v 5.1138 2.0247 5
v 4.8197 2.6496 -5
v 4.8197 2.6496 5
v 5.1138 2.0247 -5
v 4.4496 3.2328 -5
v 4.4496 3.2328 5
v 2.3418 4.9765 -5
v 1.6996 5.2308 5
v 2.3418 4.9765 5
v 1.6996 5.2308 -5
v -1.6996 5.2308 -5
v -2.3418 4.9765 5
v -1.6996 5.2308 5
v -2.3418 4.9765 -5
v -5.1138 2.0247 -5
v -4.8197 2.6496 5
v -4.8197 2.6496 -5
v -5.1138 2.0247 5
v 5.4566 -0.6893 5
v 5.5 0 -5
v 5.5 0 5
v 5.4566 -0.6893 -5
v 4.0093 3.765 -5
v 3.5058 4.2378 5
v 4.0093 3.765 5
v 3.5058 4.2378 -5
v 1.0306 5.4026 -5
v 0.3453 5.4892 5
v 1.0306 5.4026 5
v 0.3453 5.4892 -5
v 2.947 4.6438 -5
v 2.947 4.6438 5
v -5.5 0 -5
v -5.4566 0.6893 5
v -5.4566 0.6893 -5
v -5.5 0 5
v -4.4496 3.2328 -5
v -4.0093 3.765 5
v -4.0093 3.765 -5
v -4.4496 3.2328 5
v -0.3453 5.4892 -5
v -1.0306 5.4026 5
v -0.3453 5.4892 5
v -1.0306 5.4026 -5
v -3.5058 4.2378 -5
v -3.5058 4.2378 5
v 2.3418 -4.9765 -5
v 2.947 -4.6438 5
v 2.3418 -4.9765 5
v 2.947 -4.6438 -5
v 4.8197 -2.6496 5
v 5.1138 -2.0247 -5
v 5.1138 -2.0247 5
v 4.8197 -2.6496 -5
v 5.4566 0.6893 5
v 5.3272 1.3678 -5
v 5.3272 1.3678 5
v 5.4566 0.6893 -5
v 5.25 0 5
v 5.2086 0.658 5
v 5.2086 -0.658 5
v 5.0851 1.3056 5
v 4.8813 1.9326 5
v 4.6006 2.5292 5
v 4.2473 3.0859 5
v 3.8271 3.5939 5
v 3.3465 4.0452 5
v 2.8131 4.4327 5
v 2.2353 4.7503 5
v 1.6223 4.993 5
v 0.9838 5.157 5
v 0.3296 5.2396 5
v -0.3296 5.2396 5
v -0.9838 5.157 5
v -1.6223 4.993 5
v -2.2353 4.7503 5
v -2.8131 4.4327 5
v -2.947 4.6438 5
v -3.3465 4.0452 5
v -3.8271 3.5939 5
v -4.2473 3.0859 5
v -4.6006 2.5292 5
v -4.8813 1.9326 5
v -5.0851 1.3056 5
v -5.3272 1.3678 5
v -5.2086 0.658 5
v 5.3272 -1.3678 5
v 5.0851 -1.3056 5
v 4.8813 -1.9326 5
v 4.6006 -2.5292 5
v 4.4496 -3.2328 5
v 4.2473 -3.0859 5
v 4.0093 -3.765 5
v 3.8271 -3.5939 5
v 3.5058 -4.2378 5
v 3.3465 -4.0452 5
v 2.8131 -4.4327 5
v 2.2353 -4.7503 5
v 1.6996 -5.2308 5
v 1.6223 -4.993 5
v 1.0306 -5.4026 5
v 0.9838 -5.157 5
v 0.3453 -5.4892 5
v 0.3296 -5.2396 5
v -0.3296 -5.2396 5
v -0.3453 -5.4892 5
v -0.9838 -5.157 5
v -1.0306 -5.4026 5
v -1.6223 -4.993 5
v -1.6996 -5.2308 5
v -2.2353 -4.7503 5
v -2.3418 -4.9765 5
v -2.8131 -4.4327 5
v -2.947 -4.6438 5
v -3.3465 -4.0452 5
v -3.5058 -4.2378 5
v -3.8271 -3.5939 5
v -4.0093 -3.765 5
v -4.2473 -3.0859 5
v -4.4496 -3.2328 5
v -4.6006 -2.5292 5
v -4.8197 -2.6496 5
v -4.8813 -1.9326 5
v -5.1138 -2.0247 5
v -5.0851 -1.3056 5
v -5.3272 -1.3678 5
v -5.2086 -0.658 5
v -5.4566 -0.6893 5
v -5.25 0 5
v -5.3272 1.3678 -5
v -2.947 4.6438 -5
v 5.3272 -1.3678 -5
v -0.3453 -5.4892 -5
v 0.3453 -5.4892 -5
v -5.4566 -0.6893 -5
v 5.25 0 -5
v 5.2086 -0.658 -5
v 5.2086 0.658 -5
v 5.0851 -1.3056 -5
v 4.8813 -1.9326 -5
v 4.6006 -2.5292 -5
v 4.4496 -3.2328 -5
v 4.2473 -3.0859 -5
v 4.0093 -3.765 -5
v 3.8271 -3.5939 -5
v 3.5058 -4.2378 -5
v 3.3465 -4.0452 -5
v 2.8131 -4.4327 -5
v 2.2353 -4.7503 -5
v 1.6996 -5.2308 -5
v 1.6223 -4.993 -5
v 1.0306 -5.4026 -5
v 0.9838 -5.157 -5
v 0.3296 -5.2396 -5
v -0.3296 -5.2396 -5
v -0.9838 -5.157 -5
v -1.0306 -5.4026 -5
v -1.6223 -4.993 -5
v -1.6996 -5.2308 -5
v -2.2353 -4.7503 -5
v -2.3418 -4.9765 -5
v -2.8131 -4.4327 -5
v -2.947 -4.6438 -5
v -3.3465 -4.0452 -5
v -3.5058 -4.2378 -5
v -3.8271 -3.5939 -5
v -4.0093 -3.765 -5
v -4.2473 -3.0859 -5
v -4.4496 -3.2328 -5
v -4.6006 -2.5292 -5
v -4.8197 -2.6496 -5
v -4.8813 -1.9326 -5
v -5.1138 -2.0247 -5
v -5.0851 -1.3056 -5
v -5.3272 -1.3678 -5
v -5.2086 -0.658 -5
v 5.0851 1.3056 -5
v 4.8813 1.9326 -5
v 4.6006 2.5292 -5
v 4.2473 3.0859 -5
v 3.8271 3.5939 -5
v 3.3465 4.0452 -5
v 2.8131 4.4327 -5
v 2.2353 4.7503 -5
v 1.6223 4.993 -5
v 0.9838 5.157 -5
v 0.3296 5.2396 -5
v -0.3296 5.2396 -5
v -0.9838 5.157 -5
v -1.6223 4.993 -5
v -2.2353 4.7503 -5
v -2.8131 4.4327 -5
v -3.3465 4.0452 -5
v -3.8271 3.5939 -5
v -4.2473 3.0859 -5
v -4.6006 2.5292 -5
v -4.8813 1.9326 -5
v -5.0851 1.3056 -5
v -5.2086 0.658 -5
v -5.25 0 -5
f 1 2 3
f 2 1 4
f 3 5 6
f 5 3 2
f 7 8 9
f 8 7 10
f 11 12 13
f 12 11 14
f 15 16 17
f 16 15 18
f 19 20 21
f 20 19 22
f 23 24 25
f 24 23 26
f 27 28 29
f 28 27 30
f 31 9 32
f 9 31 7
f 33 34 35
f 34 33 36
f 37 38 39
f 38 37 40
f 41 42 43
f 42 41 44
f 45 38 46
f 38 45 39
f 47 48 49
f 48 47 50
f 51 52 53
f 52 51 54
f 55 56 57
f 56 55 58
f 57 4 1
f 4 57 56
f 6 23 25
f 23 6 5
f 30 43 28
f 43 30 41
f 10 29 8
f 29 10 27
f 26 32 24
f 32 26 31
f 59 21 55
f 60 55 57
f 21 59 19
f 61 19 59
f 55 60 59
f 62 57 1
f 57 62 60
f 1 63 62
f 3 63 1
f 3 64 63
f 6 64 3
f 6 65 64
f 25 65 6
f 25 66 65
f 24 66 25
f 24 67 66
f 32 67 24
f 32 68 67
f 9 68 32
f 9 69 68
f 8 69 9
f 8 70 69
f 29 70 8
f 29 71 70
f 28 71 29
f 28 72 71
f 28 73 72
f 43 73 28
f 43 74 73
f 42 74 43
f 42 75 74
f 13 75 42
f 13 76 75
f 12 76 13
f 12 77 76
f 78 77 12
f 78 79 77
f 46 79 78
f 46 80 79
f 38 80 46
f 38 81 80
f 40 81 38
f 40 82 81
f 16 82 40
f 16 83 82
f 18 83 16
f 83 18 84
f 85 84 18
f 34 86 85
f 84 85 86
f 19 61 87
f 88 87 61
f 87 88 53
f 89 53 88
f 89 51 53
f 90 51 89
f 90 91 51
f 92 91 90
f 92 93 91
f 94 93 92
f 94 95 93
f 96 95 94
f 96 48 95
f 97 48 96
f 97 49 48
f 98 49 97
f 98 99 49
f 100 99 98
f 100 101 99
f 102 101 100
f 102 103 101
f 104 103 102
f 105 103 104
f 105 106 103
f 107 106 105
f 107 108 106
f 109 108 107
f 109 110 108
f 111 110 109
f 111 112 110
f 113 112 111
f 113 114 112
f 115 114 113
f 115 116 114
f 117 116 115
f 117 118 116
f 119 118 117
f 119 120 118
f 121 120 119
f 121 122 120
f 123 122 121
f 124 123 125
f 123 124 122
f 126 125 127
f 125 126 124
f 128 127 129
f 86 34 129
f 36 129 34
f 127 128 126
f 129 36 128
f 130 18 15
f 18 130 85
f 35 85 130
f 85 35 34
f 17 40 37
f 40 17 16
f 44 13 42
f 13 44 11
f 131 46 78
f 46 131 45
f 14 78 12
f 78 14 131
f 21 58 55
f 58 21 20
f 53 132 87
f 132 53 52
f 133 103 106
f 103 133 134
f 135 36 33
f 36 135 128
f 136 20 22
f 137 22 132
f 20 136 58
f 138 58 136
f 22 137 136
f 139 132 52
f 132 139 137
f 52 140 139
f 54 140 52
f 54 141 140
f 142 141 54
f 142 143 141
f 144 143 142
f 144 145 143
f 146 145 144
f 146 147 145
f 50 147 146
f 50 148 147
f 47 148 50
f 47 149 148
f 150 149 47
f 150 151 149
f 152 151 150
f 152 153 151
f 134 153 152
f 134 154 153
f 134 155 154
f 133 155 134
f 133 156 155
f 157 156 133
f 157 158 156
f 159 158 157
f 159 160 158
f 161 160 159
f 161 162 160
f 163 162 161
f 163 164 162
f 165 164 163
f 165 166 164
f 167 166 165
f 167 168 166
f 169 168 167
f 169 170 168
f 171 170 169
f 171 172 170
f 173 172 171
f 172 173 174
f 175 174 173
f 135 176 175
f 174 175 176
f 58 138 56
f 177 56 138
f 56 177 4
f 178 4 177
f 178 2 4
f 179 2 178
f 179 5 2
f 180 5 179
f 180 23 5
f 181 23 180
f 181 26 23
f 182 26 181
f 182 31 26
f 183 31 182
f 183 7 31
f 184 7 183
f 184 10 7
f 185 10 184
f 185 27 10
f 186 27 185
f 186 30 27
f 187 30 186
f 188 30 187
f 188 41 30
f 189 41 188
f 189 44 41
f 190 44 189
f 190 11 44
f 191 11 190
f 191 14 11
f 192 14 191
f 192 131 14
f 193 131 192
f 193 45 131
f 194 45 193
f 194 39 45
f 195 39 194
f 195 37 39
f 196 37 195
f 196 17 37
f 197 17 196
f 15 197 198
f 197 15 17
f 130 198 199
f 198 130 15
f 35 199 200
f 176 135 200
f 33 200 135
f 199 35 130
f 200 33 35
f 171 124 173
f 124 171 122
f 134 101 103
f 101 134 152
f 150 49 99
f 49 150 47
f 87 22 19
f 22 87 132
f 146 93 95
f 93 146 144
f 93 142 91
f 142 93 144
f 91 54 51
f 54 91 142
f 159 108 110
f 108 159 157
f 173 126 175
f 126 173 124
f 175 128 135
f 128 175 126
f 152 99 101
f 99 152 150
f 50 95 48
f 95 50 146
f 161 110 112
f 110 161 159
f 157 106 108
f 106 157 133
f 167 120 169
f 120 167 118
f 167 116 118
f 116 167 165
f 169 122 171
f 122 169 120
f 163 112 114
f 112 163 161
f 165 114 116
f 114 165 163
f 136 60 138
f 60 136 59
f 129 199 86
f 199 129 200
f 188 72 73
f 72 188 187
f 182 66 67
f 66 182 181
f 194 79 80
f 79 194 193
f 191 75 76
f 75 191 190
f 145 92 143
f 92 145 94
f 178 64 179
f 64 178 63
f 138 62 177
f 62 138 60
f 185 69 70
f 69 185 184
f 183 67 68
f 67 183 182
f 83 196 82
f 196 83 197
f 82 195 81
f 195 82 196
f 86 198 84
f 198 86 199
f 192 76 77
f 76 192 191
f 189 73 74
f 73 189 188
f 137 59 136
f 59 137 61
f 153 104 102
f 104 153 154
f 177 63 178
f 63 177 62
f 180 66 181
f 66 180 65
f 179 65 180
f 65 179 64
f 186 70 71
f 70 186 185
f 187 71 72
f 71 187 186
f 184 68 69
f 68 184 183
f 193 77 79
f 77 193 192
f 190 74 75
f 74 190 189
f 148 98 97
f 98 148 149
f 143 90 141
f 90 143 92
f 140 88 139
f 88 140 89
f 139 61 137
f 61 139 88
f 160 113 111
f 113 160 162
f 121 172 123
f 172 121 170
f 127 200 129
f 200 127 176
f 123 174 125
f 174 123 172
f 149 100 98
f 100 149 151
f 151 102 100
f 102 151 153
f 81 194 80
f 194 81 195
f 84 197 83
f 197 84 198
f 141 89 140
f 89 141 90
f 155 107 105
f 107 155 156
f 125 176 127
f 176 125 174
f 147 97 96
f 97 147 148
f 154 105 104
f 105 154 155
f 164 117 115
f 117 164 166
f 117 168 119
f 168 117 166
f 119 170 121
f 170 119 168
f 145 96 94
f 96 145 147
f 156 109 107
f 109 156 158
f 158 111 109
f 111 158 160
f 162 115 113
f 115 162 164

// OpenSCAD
$fn = 50;


difference() {
	union() {
		translate(v = [0, 0, -5.0000000000]) {
			cylinder(h = 10, r = 5.5000000000);
		}
	}
	union() {
		translate(v = [0, 0, -100.0000000000]) {
			cylinder(h = 200, r = 5.2500000000);
		}
	}
}
